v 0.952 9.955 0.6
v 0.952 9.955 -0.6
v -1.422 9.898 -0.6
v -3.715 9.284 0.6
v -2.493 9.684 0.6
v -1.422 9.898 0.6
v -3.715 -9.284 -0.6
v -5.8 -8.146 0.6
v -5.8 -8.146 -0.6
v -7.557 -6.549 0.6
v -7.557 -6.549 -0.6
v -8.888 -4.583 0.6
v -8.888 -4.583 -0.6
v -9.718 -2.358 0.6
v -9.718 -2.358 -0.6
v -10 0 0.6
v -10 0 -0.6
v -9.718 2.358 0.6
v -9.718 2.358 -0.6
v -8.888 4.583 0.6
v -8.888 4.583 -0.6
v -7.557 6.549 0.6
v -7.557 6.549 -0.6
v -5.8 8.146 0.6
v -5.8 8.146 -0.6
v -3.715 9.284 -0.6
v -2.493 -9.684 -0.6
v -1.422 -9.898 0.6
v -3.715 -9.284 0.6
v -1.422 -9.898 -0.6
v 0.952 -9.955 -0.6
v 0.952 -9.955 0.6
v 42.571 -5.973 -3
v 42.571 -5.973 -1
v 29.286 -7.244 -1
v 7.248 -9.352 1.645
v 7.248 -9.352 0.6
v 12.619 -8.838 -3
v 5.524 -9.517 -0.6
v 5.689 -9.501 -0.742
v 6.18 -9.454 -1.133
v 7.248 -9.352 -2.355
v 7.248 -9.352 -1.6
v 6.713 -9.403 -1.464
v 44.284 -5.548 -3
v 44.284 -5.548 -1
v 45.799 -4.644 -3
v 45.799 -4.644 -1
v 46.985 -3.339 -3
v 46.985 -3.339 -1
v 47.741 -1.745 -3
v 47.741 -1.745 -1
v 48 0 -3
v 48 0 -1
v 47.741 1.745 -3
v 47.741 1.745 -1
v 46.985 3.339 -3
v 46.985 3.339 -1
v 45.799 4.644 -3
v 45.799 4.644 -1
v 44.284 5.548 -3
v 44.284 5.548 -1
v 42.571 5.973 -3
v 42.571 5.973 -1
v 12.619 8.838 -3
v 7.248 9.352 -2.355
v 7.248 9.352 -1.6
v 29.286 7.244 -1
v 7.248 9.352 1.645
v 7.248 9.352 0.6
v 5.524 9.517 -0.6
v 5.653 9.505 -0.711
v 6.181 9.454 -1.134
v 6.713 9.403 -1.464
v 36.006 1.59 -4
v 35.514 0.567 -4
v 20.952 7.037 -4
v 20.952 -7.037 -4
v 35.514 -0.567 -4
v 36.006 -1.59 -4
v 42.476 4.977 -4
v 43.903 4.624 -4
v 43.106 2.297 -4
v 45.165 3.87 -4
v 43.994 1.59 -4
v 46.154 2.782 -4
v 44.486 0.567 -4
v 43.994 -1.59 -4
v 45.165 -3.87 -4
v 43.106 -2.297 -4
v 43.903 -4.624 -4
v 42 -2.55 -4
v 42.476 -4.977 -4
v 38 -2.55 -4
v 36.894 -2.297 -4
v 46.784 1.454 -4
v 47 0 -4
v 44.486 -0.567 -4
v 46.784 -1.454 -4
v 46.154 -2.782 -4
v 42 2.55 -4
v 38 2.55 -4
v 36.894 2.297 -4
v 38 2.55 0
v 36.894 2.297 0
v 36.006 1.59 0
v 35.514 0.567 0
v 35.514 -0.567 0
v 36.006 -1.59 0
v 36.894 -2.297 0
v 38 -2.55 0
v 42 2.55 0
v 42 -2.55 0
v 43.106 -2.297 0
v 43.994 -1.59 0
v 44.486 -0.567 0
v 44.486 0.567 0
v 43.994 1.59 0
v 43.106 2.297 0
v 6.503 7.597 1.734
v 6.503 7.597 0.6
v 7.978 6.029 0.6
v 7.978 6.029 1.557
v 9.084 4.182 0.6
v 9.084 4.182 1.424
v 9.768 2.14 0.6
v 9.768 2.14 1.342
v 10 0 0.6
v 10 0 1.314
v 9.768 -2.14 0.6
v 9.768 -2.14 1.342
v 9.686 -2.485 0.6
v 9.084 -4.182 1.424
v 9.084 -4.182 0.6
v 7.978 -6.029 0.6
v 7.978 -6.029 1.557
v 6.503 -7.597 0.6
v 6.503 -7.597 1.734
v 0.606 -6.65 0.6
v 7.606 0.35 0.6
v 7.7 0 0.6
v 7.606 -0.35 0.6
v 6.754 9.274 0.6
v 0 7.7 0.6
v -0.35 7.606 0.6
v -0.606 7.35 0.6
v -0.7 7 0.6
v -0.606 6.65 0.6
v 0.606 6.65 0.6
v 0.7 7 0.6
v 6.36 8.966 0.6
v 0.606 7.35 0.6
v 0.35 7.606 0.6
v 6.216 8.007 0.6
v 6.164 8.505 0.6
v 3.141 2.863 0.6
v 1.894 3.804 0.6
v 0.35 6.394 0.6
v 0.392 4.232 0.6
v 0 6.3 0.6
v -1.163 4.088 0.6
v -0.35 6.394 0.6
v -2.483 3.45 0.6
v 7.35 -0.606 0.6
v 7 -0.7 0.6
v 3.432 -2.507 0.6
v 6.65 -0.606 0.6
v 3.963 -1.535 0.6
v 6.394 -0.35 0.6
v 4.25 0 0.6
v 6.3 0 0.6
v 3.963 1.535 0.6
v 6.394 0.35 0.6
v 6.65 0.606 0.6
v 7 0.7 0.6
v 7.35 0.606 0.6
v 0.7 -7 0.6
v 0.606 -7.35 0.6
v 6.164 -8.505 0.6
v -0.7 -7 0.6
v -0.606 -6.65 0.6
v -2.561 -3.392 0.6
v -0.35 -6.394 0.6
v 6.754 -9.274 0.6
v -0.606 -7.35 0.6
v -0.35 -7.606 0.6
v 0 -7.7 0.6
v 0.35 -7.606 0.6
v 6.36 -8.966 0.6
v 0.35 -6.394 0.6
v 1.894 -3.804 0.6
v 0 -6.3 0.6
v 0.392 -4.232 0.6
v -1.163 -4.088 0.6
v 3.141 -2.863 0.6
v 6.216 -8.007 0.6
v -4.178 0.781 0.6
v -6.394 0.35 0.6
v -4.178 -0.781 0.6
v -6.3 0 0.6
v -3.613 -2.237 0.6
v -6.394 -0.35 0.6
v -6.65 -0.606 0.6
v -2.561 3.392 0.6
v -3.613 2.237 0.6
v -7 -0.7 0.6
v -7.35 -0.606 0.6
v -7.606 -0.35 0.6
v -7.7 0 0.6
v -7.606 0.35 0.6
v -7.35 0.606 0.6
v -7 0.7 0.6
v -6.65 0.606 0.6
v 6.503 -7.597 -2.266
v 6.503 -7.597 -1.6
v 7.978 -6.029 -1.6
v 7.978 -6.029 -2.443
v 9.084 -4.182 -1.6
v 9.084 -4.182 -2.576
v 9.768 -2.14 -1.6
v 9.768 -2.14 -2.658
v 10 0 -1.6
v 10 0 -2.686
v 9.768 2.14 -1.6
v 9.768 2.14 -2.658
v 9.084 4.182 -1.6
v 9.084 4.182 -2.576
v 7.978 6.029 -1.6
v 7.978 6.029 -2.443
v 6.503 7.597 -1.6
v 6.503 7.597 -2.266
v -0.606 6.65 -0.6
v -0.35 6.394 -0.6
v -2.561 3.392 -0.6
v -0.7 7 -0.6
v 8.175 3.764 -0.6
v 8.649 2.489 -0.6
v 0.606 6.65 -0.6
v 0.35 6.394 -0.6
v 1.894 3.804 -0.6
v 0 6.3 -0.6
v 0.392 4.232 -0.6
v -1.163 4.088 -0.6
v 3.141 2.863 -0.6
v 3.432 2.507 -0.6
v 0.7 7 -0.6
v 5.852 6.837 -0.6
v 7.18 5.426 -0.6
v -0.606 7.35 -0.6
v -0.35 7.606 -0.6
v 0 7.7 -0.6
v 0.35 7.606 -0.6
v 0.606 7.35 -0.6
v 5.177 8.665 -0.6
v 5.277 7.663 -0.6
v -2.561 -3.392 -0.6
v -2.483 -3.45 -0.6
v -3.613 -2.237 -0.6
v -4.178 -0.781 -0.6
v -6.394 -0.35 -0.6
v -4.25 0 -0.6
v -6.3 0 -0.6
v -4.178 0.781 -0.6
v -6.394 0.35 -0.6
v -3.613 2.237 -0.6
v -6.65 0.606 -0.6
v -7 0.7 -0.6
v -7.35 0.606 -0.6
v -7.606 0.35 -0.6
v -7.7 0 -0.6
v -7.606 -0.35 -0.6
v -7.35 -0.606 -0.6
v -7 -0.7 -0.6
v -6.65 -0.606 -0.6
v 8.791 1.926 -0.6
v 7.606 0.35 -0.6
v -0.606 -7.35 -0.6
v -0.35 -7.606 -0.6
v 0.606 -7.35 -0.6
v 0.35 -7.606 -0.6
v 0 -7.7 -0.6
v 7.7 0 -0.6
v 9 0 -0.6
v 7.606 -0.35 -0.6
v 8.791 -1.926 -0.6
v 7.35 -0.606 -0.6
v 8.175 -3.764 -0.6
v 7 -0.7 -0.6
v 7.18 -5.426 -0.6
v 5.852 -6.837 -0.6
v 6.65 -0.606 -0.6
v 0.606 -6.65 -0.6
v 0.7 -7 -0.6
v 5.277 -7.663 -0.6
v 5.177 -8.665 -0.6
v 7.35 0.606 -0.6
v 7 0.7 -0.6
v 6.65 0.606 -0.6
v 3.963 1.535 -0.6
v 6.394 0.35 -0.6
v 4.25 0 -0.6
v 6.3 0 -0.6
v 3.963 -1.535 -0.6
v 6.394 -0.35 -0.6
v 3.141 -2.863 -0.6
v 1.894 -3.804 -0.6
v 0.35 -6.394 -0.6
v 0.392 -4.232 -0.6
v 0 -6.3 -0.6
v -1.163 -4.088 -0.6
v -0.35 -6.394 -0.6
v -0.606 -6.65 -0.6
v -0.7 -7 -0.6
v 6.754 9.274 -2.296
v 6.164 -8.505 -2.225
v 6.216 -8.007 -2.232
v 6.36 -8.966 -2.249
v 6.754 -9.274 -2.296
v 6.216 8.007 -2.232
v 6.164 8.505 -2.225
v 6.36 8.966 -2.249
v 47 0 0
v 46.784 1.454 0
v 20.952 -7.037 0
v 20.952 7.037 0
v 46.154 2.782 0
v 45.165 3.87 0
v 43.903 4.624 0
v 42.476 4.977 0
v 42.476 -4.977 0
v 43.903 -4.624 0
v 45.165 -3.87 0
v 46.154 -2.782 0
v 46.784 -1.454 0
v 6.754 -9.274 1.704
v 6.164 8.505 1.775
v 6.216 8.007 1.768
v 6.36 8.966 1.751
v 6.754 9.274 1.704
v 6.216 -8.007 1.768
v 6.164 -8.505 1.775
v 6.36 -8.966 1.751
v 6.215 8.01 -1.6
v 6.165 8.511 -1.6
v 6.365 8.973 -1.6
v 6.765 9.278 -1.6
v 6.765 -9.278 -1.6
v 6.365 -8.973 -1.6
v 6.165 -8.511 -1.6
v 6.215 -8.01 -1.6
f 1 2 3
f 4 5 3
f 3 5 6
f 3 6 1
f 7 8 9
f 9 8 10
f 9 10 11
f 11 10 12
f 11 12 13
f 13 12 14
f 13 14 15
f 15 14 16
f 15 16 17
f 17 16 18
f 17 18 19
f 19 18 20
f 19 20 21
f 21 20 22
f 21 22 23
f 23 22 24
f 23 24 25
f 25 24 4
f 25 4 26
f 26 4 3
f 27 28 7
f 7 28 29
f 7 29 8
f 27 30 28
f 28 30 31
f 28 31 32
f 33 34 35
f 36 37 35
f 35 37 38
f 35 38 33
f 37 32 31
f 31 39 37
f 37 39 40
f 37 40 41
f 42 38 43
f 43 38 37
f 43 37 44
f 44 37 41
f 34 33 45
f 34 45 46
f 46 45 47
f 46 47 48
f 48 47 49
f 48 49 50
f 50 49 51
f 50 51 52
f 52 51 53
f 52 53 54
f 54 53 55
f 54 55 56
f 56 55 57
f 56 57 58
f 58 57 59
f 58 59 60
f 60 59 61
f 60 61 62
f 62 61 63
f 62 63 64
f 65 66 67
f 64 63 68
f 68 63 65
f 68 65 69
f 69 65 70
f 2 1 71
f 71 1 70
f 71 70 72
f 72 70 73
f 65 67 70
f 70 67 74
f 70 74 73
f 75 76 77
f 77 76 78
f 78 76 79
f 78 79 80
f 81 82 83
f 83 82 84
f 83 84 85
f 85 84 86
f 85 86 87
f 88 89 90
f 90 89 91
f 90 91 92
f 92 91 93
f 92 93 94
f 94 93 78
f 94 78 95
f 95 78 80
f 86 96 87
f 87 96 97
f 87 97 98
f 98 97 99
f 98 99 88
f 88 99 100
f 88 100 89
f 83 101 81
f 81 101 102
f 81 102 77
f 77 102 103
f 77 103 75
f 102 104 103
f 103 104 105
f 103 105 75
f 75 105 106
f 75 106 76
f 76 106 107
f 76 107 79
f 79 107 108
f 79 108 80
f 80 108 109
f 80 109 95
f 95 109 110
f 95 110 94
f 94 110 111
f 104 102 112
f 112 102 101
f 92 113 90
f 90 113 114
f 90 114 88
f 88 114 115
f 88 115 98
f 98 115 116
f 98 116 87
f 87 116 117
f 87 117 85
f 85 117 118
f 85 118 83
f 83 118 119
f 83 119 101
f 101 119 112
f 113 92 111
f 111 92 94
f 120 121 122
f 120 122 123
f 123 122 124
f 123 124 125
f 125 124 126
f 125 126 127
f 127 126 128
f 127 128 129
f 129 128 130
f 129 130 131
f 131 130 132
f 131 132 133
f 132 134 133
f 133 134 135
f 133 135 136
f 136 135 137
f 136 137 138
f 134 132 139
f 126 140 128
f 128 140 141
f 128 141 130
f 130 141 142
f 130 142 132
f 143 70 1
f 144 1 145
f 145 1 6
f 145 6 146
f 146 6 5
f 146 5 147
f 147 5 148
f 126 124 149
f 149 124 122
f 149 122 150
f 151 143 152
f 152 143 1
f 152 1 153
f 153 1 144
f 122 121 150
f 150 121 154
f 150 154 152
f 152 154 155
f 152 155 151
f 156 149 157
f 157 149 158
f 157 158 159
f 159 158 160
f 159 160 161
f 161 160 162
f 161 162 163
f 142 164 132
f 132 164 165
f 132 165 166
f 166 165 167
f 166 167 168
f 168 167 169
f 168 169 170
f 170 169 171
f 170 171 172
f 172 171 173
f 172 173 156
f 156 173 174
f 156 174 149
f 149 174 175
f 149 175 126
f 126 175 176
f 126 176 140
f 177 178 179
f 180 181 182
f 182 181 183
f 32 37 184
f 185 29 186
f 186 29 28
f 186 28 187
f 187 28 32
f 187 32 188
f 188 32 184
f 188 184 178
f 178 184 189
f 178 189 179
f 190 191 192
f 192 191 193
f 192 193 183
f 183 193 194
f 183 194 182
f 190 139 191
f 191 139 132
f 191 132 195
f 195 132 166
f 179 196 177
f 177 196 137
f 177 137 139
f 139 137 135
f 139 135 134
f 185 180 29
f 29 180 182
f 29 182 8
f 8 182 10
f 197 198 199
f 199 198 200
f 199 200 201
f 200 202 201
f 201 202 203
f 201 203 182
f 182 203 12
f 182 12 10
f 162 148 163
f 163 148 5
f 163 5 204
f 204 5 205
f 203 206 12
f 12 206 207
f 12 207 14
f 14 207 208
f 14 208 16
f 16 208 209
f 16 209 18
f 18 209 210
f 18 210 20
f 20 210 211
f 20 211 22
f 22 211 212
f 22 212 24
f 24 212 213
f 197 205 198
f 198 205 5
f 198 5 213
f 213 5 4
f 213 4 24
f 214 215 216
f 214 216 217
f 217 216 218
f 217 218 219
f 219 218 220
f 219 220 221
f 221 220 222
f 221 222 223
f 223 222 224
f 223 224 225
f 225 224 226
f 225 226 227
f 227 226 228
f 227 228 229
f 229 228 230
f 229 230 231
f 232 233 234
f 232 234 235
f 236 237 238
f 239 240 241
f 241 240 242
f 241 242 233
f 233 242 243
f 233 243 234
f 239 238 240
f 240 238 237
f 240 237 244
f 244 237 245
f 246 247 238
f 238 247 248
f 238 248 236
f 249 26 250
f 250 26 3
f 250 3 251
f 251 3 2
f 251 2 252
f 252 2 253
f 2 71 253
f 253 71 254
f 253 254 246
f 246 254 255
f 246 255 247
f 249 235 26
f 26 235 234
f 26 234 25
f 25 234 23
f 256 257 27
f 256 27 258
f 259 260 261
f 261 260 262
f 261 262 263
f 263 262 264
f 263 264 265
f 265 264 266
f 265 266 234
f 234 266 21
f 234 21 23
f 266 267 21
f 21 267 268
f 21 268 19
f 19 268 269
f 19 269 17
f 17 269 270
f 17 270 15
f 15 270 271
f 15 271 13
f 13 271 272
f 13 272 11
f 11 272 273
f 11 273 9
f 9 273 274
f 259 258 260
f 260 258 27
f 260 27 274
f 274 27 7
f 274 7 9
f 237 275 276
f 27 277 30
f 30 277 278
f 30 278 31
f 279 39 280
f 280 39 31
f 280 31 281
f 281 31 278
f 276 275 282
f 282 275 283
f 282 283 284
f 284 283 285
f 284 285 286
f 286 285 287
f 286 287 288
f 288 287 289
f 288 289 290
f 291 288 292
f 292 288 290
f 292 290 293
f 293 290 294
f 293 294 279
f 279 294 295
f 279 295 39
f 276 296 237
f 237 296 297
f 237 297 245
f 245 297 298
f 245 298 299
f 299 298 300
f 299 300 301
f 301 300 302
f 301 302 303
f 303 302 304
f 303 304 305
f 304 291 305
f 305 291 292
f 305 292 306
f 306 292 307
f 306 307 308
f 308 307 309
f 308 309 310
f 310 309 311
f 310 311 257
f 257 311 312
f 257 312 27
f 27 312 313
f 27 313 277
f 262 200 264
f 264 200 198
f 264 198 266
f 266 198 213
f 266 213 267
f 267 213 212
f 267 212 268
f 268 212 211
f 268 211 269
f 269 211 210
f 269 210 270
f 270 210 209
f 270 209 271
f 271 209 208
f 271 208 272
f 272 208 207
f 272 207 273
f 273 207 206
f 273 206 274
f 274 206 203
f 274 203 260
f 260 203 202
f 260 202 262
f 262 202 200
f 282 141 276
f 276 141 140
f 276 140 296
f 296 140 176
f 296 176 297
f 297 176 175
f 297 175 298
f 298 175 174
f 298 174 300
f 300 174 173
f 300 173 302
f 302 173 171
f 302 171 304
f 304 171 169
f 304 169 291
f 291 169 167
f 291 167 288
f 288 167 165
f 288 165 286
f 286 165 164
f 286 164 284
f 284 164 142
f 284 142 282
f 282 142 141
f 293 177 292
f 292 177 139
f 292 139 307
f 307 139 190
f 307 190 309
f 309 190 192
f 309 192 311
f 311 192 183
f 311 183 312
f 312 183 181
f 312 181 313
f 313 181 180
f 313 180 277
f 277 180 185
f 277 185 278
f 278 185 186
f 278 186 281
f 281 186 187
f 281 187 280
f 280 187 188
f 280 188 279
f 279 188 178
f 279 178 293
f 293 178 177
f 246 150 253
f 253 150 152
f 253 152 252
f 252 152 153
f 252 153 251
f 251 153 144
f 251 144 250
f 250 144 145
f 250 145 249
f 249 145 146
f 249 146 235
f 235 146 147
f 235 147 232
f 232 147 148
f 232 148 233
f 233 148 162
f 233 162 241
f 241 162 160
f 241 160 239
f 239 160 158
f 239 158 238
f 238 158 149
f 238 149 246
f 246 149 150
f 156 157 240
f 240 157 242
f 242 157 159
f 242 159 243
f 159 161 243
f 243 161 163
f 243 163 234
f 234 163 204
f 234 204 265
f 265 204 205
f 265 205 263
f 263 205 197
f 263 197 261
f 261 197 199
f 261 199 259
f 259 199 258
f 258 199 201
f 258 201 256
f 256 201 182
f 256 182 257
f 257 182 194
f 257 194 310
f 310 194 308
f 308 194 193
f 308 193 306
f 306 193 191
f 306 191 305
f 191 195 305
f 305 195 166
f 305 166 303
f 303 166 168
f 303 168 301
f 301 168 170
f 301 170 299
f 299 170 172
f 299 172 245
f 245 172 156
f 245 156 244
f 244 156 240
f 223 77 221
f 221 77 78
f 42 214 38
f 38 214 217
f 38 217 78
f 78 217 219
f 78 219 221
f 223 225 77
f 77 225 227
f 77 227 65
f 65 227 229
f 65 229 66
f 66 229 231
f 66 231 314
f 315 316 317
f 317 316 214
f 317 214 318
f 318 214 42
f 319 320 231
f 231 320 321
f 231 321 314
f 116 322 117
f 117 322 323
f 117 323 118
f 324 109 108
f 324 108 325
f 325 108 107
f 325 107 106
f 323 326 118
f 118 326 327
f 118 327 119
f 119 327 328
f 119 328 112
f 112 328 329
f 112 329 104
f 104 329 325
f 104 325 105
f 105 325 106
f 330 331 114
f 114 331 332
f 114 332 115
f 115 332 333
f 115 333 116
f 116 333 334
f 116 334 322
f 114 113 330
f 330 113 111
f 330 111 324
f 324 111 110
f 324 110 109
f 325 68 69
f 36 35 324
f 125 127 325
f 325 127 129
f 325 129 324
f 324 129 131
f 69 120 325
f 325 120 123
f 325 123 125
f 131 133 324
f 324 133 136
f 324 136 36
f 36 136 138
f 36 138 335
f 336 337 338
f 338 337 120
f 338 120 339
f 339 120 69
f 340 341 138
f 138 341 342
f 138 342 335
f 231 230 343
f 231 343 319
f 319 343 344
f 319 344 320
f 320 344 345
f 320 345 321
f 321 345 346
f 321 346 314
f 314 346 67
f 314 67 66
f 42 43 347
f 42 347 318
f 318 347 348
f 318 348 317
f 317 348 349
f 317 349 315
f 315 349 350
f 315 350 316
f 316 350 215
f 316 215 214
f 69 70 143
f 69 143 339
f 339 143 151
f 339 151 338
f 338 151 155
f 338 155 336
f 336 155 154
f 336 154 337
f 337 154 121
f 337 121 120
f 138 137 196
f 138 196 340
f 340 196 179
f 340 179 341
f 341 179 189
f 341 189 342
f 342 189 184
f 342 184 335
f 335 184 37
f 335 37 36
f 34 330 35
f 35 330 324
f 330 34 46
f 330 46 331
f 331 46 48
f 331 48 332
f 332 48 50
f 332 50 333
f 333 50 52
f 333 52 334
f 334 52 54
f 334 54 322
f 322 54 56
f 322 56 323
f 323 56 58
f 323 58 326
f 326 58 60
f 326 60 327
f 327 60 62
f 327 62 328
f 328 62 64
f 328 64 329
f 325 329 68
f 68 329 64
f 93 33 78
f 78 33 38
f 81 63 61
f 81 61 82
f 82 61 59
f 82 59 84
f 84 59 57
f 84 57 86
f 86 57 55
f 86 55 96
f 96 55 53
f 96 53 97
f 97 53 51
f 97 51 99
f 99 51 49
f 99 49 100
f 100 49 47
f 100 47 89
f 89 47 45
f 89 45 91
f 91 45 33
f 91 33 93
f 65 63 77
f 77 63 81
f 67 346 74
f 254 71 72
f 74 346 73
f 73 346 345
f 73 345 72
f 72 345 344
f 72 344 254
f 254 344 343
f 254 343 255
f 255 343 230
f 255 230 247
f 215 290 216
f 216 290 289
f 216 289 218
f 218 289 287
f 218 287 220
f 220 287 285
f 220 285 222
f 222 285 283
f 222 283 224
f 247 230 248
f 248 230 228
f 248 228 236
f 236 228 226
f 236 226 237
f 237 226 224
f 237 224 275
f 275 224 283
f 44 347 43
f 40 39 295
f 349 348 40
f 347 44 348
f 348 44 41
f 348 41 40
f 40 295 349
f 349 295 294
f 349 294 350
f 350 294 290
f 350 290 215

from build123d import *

# Parameters (mm, degrees)
EXTRUDE_1_DEPTH          = 4
CUT_EXTRUDE_1_DEPTH      = 50.678969393496885
SKETCH_5_R               = 10
CUT_EXTRUDE_2_DEPTH      = 3.4
SKETCH_6_R               = 0.7
SKETCH_6_R_2             = 0.7000000000000005
CUT_EXTRUDE_3_DEPTH      = 50.24591353604885
SKETCH_8_R               = 4.25
CUT_EXTRUDE_5_DEPTH      = 50.24591353604885
CUT_EXTRUDE_7_DEPTH      = 50.193495504995376
CUT_EXTRUDE_7_DEPTH_BACK = 50.193495504995376
FILLET_1_R               = 1
CHAMFER_1_SIZE           = 1
CHAMFER_3_SIZE           = 1


with BuildPart() as part:
    # 草图1 → 凸台-拉伸1 (new, symmetric)
    with BuildSketch(Plane.XY):
        with BuildLine():
            Line((0.9523809523809523, 9.954545219222322), (42.57142857142857, 5.972727131533395))
            ThreePointArc((42.57142857142857, 5.972727131533395), (48, 0), (42.57142857142857, -5.972727131533395))
            Line((42.57142857142857, -5.972727131533395), (0.9523809523809523, -9.954545219222322))
            ThreePointArc((0.9523809523809523, -9.954545219222322), (-10.000000000000002, 1.22e-15), (0.9523809523809523, 9.954545219222322))
        make_face()
    extrude(amount=EXTRUDE_1_DEPTH, both=True)

    # 草图3 → 切除-拉伸1 (cut, through all)
    with BuildSketch(Plane.XY.offset(4)):
        with BuildLine():
            Line((38, 2.55), (42, 2.55))
            ThreePointArc((42, 2.55), (44.55, 0), (42, -2.55))
            Line((42, -2.55), (38, -2.55))
            ThreePointArc((38, -2.55), (35.45, 3.1e-16), (38, 2.55))
        make_face()
    extrude(amount=-CUT_EXTRUDE_1_DEPTH, mode=Mode.SUBTRACT)

    # 草图5 → 切除-拉伸2 (cut)
    with BuildSketch(Plane.XY.offset(4)):
        Circle(SKETCH_5_R)
    cut_extrude_2 = extrude(amount=-CUT_EXTRUDE_2_DEPTH, mode=Mode.SUBTRACT)

    # 镜向7: 切除-拉伸2 across plane
    add(cut_extrude_2.mirror(Plane.XY), mode=Mode.SUBTRACT)

    # 草图6 → 切除-拉伸3 (cut, through all)
    with BuildSketch(Plane.XY.offset(0.6000000000000003)):
        with Locations((0, 7)):
            Circle(SKETCH_6_R)
        with Locations((0, -7)):
            Circle(SKETCH_6_R)
        with Locations((7, -1.8e-15)):
            Circle(SKETCH_6_R_2)
        with Locations((-7, -1.8e-15)):
            Circle(SKETCH_6_R_2)
    extrude(amount=-CUT_EXTRUDE_3_DEPTH, mode=Mode.SUBTRACT)

    # 草图8 → 切除-拉伸5 (cut, through all)
    with BuildSketch(Plane.XY.offset(0.6000000000000003)):
        Circle(SKETCH_8_R)
    extrude(amount=-CUT_EXTRUDE_5_DEPTH, mode=Mode.SUBTRACT)

    # 草图10 → 切除-拉伸7 (cut, two sides: drawn at the far end of the back side and taken through both)
    with BuildSketch(Plane(origin=(0, 0, 0), x_dir=(1, 0, 0), z_dir=(0, 1, 0)).offset(-CUT_EXTRUDE_7_DEPTH_BACK)):
        Polygon((0.9523809523809523, 1.6000000000000003), (0.9523809523809523, 4), (20.952380952380953, 4.000000000000003), align=None)
        Polygon((0.9523809523809523, -2.4), (20.95238095238096, 6.07e-15), (48.00000000000001, 6.07e-15), (48.00000000000001, -4), (0.952380952380952, -4), align=None)
    extrude(amount=CUT_EXTRUDE_7_DEPTH + CUT_EXTRUDE_7_DEPTH_BACK, mode=Mode.SUBTRACT)

    # 圆角1
    fillet_1_edges = [part.edges().sort_by_distance(p)[0] for p in [
        (0.9523809523809526, 9.954545219222322, -1.0999999999999996),
        (0.9523809523809524, -9.954545219222322, -1.0999999999999996),
        (0.9523809523809526, 9.954545219222322, 1.5),
        (0.9523809523809524, -9.954545219222322, 1.5),
    ]]
    fillet(fillet_1_edges, radius=FILLET_1_R)

    # 倒角1
    chamfer_1_edges = [part.edges().sort_by_distance(p)[0] for p in [
        (31.761904761904763, 7.006906428907978, -4),
        (48, 1.33e-15, -4),
        (31.761904761904763, -7.006906428907978, -4),
        (48, 1.33e-15, -6.07e-15),
        (31.761904761904763, -7.006906428907977, -6.07e-15),
        (31.761904761904766, 7.006906428907978, -6.07e-15),
    ]]
    chamfer(chamfer_1_edges, length=CHAMFER_1_SIZE)

    # 倒角3
    # the kernel refuses this chamfer: 1 mm, written as the material it adds along each edge
    with BuildSketch(Plane(origin=(0, 0, -0.6000000000000001), x_dir=(0.6502681863563081, -0.7597047359421143, 0), z_dir=(-0.7597047359421143, -0.6502681863563081, 0))) as chamfer_3_piece_1:
        Polygon((10, -CHAMFER_3_SIZE), (9.999999999999998 - CHAMFER_3_SIZE, -2e-16), (9.999999999999998, 0), align=None)
    revolve(axis=Axis((0, 0, -0.6000000000000001), (0, 2e-17, 1)), revolution_arc=98.87634994501913)
    with BuildSketch(Plane(origin=(7.1529500499193945, 8.356752095363253, -0.6000000000000001), x_dir=(0.45453302112340566, -0.8907298876249914, 0), z_dir=(-0.8907298876249914, -0.45453302112340566, 0))) as chamfer_3_piece_2_section:
        Polygon((1.0000000000000004, -CHAMFER_3_SIZE), (1.0000000000000004 + CHAMFER_3_SIZE, 0), (1.0000000000000004, 0), align=None)
    chamfer_3_piece_2 = revolve(axis=Axis((7.1529500499193945, 8.356752095363253, -0.6000000000000001), (0, 0, 1)), revolution_arc=292.40328295994874, mode=Mode.PRIVATE)
    chamfer_3_piece_2 = split(chamfer_3_piece_2, bisect_by=Plane(origin=(6.105913725446883, 9.461491408882363, -0.9544569882762437), z_dir=(-0.09523809523809522, -0.995454521922232, 0)), keep=Keep.TOP, mode=Mode.PRIVATE)
    add(chamfer_3_piece_2)
    with BuildSketch(Plane(origin=(7.152950049919392, -8.356752095363255, -0.6000000000000001), x_dir=(0.4545330211234144, 0.8907298876249867, 0), z_dir=(-0.8907298876249867, 0.4545330211234144, 0))) as chamfer_3_piece_3_section:
        Polygon((1.0000000000000002 + CHAMFER_3_SIZE, 0), (0.9999999999999994, CHAMFER_3_SIZE), (1.0000000000000002, 0), align=None)
    chamfer_3_piece_3 = revolve(axis=Axis((7.152950049919392, -8.356752095363255, -0.6000000000000001), (0, 0, -1)), revolution_arc=292.40328295994846, mode=Mode.PRIVATE)
    chamfer_3_piece_3 = split(chamfer_3_piece_3, bisect_by=Plane(origin=(6.105912616149652, -9.46149151501213, -0.9544569410111913), z_dir=(-0.09523809523809522, 0.995454521922232, 0)), keep=Keep.TOP, mode=Mode.PRIVATE)
    add(chamfer_3_piece_3)


solid = part.part
